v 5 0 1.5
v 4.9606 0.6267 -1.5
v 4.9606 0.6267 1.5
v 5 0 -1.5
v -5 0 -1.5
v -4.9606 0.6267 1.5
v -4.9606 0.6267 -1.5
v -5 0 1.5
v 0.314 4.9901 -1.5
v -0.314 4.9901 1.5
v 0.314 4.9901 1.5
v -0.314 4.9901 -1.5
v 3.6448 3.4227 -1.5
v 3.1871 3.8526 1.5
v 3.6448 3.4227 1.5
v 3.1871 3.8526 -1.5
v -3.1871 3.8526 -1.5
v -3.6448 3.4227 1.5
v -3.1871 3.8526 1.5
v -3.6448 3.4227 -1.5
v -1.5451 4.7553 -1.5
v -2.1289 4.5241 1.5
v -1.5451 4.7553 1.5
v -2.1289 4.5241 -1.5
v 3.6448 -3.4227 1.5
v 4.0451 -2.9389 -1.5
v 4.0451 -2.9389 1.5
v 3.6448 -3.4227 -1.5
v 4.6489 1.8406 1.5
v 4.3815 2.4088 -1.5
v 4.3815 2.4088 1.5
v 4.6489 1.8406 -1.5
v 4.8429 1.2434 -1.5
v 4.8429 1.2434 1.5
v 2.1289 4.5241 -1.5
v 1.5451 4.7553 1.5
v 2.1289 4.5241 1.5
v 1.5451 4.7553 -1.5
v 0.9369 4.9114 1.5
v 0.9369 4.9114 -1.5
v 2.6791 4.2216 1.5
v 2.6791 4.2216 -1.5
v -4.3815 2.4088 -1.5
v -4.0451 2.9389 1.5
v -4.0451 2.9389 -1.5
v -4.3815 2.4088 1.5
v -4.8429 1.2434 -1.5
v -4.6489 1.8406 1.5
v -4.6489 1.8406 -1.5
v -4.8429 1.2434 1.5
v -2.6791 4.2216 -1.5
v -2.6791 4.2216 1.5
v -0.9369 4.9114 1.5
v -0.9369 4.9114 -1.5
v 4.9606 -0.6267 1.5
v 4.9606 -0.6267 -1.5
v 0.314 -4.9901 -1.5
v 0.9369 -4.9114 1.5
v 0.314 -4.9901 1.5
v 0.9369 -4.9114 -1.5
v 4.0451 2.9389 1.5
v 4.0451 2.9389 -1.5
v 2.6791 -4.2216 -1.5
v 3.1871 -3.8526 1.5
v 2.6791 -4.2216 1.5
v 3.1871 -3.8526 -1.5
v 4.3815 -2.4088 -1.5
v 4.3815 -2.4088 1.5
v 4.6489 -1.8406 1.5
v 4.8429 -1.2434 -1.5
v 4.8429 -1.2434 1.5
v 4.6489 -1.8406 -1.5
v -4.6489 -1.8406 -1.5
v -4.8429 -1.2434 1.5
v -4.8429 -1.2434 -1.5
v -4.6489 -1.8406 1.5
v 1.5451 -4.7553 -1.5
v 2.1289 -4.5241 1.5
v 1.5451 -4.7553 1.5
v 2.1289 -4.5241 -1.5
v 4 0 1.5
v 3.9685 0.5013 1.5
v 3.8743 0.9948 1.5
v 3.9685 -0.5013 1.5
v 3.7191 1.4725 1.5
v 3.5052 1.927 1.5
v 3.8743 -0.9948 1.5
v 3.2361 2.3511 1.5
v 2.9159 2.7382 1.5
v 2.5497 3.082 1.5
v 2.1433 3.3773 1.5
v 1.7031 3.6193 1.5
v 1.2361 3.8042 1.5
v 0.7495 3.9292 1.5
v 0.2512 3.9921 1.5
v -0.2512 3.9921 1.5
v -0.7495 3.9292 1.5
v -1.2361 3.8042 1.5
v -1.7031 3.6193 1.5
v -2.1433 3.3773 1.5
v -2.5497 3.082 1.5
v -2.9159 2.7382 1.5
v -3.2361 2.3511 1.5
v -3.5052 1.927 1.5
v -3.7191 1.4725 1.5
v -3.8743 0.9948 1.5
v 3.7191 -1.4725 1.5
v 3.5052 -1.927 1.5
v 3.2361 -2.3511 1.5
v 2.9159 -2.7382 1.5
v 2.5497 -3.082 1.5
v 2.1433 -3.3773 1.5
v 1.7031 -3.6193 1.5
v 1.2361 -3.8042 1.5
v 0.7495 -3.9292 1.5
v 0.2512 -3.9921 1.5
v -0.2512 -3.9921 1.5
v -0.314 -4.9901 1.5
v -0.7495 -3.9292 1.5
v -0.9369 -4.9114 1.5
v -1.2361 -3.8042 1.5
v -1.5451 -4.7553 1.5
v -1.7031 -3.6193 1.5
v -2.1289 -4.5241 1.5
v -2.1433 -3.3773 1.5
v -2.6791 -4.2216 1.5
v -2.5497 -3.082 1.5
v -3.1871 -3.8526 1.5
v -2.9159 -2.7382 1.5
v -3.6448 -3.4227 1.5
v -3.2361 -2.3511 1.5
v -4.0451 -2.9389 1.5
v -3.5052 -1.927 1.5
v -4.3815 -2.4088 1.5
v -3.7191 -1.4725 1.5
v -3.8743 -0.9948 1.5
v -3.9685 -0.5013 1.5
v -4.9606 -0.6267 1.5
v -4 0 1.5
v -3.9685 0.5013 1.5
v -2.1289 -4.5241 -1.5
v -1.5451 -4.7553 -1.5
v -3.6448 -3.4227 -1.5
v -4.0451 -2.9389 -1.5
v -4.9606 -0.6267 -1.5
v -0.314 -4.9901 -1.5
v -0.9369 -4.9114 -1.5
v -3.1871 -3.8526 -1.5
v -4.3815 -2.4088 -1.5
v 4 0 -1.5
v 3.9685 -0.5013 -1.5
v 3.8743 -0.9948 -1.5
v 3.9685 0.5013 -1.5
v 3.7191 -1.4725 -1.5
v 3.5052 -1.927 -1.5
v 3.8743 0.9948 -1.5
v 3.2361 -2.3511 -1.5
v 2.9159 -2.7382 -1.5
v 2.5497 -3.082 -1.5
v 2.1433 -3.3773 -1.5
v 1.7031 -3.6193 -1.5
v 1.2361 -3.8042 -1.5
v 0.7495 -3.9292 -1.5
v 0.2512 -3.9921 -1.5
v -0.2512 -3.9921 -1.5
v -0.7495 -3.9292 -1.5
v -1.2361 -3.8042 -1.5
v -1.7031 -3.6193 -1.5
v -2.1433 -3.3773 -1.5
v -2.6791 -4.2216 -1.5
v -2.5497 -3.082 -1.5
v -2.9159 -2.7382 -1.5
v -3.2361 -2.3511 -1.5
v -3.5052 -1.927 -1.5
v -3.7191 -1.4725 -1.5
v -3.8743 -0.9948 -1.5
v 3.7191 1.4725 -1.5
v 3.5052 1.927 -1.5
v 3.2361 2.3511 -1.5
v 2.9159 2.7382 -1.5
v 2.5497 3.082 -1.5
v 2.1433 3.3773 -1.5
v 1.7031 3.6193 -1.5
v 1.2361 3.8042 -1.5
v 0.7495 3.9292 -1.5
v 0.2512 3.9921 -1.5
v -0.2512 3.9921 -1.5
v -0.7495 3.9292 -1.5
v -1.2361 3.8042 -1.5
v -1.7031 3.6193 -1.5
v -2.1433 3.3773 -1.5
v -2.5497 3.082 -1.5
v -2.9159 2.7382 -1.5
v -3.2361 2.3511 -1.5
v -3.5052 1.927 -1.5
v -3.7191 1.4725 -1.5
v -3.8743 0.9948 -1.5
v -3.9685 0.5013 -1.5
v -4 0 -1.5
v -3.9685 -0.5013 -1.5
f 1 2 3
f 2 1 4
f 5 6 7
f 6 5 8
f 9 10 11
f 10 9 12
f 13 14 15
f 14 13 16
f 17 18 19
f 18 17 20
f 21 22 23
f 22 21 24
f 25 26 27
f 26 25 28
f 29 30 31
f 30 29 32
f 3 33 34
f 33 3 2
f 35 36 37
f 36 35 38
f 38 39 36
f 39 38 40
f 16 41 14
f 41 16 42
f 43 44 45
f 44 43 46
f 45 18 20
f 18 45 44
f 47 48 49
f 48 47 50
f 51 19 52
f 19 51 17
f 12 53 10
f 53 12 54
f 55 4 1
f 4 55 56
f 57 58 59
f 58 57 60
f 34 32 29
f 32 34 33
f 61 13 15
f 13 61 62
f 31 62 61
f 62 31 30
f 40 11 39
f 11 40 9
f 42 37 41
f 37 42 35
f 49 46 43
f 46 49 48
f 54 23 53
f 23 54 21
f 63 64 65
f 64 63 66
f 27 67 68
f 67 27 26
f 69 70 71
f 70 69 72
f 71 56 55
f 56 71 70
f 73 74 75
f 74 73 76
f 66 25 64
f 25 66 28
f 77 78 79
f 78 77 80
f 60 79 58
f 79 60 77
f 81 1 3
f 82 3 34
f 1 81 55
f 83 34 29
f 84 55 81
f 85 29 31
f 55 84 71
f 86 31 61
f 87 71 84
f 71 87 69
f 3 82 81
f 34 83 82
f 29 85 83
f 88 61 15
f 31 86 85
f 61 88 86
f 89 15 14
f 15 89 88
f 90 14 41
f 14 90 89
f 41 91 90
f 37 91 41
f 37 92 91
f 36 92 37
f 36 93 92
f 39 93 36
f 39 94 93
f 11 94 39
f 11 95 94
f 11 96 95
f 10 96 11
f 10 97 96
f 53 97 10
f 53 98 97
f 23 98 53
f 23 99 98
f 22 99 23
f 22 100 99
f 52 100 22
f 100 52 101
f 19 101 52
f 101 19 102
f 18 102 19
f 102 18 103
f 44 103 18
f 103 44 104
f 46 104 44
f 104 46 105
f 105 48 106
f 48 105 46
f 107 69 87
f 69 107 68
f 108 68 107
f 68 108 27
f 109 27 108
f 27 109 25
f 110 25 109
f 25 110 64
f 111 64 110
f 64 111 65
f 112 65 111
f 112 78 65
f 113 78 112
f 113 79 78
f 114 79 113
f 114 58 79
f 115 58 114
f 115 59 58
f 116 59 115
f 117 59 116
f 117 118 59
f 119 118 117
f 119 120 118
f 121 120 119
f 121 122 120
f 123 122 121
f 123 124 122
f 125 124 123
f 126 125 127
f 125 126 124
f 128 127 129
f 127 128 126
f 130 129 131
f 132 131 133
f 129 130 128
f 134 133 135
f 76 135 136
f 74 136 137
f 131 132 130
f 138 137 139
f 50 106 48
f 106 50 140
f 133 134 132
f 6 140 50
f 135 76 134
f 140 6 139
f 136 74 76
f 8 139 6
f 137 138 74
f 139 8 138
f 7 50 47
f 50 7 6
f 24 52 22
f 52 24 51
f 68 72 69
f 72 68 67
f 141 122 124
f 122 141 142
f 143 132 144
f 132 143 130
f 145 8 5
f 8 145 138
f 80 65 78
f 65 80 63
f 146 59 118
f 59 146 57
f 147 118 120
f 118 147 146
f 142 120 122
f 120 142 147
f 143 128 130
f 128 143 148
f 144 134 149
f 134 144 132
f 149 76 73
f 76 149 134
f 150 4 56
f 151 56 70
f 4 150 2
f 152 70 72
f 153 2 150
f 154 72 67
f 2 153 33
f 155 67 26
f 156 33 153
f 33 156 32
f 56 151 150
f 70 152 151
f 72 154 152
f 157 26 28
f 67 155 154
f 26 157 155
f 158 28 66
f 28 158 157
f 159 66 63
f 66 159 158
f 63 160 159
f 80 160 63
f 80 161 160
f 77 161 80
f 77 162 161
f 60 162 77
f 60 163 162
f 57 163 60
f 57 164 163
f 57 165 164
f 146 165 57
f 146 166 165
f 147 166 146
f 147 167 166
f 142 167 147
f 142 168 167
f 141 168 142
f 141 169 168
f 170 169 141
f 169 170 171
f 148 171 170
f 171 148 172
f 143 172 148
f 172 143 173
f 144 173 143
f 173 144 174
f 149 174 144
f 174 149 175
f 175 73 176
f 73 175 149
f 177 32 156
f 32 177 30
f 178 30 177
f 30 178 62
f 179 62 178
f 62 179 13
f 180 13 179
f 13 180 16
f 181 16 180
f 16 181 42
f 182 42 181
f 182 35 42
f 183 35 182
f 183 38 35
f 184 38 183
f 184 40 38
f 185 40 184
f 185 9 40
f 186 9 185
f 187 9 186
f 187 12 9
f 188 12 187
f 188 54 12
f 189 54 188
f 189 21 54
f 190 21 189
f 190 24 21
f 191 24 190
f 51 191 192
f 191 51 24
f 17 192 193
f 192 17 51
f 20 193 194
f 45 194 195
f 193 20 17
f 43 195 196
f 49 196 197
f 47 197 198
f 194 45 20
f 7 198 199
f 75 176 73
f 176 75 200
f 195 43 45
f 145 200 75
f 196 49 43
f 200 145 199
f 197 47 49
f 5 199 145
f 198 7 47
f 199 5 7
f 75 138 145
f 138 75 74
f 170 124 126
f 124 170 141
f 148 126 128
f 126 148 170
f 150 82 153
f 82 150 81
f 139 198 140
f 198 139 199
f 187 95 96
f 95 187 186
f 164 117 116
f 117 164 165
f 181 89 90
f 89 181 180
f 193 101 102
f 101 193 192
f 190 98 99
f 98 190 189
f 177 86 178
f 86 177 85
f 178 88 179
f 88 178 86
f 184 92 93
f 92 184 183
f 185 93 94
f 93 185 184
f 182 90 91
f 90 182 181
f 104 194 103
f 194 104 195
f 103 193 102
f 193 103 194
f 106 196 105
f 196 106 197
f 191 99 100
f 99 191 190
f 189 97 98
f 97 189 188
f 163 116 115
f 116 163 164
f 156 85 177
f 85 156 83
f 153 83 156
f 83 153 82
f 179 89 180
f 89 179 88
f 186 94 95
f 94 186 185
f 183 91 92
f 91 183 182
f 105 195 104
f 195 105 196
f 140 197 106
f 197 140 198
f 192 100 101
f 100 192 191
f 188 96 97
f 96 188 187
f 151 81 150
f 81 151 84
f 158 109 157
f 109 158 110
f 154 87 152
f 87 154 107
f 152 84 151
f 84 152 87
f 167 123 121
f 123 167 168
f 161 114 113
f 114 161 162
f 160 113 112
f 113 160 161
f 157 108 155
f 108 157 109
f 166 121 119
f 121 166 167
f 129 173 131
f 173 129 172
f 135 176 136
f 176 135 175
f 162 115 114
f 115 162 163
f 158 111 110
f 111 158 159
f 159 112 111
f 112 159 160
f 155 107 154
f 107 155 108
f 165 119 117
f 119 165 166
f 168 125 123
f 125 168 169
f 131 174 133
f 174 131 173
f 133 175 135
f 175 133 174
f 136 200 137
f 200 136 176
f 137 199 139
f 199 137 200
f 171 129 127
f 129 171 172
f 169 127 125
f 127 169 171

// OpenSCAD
$fn = 50;


difference() {
	union() {
		translate(v = [0, 0, -1.5000000000]) {
			cylinder(h = 3, r = 5.0000000000);
		}
	}
	union() {
		translate(v = [0, 0, -100.0000000000]) {
			cylinder(h = 200, r = 4.0000000000);
		}
	}
}
